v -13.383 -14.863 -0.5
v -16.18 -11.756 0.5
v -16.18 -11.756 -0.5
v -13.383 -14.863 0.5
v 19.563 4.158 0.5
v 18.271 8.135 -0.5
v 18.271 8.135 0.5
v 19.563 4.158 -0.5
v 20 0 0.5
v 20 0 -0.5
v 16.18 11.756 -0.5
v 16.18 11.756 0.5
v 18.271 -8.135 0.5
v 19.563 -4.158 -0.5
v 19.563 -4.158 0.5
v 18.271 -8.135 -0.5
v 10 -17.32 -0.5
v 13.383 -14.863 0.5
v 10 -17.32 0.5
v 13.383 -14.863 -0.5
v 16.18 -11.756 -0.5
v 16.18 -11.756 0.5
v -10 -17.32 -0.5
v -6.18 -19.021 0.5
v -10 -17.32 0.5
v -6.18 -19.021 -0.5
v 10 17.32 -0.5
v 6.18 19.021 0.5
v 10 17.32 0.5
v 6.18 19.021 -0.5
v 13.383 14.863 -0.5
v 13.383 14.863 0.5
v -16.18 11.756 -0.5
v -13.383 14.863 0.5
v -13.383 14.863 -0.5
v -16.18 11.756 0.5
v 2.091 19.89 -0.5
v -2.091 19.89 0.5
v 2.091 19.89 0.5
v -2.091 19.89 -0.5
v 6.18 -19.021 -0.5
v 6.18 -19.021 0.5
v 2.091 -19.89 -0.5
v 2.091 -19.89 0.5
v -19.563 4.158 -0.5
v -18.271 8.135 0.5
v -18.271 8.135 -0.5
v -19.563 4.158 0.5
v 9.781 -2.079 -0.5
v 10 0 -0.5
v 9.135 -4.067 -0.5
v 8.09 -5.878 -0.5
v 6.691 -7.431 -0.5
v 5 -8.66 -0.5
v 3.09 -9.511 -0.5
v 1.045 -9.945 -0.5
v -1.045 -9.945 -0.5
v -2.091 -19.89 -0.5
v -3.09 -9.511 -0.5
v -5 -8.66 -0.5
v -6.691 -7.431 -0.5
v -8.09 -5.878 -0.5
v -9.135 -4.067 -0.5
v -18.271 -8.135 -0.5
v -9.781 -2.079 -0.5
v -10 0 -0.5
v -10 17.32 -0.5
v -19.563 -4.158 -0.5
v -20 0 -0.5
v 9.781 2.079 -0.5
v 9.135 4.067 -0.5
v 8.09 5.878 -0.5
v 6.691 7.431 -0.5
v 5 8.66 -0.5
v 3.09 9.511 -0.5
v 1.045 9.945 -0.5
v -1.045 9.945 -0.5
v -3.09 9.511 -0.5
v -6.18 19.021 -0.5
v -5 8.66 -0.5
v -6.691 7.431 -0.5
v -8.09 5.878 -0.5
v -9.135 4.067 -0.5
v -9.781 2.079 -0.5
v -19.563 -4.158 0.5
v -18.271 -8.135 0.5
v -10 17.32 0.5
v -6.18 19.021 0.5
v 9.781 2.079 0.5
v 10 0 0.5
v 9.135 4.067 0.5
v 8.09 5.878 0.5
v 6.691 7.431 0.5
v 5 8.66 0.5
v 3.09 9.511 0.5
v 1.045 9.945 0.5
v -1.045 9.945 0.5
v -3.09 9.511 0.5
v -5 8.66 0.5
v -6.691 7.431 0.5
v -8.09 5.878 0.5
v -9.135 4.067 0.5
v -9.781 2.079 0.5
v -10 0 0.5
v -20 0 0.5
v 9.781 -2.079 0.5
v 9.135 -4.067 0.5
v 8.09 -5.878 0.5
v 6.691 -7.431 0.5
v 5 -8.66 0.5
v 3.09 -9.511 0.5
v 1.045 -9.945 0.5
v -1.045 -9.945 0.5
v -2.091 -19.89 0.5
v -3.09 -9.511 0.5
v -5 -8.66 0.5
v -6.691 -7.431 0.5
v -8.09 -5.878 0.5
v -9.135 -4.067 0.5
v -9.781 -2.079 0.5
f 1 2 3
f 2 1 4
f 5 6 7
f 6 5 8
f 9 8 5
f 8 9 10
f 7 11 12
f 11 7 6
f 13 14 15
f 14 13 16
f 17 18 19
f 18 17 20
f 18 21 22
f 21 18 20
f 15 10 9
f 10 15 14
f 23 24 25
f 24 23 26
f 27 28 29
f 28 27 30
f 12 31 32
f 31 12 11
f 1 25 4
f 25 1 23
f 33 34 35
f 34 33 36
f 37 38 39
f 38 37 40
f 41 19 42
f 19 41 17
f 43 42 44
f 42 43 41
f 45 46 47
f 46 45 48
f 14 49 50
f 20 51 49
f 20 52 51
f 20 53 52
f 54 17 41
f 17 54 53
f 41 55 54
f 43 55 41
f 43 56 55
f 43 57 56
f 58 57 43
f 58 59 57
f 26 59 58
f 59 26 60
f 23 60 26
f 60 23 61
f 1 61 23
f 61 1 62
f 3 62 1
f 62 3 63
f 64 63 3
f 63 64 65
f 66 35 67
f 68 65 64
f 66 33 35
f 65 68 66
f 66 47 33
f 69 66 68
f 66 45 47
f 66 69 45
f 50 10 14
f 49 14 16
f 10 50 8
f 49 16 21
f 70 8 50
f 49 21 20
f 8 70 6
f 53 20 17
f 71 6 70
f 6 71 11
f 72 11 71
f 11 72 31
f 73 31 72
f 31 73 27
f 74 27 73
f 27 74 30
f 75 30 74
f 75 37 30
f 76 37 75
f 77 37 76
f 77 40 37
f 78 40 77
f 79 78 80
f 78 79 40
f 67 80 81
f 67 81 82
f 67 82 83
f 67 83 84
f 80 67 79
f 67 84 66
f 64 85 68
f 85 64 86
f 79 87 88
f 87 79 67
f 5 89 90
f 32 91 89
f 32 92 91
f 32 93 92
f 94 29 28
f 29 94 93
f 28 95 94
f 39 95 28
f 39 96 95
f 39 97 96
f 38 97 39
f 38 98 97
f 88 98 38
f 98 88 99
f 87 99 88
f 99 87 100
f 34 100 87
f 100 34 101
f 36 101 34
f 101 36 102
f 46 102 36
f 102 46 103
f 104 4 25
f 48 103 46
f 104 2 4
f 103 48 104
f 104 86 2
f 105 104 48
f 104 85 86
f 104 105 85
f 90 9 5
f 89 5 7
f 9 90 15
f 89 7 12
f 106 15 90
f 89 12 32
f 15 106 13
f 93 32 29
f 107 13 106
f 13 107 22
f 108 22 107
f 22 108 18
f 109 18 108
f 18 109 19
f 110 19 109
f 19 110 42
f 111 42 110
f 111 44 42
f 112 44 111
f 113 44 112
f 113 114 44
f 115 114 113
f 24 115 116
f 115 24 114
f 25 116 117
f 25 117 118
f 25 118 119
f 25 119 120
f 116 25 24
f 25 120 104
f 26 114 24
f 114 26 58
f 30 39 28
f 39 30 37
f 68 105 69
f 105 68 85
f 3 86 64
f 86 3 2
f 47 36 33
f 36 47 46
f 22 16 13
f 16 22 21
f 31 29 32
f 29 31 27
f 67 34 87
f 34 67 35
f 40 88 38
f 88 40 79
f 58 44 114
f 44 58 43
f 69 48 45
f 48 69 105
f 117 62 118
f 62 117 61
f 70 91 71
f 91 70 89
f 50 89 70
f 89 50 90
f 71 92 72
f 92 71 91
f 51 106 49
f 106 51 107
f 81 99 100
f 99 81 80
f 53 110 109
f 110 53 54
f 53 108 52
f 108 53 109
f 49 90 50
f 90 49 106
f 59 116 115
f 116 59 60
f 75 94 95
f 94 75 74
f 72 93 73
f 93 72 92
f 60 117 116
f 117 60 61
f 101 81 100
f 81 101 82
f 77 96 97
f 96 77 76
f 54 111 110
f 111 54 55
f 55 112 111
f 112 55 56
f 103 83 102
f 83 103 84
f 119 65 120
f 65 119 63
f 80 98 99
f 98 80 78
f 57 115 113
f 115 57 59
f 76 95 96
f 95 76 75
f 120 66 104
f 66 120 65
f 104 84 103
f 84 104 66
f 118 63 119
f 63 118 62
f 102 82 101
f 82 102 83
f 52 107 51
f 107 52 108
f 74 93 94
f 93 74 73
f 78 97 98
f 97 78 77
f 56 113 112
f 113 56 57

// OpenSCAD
// Spacer Ring Component
// Description: A flat, circular ring with a hollow center. It is thin and has a smooth surface.

module spacer_ring() {
    difference() {
        // Outer cylinder
        cylinder(h=1, r=20, center=true); // Reduced thickness from 1.5 to 1 to match the original model
        // Inner hollow cylinder
        translate([0, 0, -0.5]) cylinder(h=2, r=10, center=true); // Adjusted inner cylinder height to match the reduced thickness
    }
}

// Render the spacer ring
spacer_ring();
